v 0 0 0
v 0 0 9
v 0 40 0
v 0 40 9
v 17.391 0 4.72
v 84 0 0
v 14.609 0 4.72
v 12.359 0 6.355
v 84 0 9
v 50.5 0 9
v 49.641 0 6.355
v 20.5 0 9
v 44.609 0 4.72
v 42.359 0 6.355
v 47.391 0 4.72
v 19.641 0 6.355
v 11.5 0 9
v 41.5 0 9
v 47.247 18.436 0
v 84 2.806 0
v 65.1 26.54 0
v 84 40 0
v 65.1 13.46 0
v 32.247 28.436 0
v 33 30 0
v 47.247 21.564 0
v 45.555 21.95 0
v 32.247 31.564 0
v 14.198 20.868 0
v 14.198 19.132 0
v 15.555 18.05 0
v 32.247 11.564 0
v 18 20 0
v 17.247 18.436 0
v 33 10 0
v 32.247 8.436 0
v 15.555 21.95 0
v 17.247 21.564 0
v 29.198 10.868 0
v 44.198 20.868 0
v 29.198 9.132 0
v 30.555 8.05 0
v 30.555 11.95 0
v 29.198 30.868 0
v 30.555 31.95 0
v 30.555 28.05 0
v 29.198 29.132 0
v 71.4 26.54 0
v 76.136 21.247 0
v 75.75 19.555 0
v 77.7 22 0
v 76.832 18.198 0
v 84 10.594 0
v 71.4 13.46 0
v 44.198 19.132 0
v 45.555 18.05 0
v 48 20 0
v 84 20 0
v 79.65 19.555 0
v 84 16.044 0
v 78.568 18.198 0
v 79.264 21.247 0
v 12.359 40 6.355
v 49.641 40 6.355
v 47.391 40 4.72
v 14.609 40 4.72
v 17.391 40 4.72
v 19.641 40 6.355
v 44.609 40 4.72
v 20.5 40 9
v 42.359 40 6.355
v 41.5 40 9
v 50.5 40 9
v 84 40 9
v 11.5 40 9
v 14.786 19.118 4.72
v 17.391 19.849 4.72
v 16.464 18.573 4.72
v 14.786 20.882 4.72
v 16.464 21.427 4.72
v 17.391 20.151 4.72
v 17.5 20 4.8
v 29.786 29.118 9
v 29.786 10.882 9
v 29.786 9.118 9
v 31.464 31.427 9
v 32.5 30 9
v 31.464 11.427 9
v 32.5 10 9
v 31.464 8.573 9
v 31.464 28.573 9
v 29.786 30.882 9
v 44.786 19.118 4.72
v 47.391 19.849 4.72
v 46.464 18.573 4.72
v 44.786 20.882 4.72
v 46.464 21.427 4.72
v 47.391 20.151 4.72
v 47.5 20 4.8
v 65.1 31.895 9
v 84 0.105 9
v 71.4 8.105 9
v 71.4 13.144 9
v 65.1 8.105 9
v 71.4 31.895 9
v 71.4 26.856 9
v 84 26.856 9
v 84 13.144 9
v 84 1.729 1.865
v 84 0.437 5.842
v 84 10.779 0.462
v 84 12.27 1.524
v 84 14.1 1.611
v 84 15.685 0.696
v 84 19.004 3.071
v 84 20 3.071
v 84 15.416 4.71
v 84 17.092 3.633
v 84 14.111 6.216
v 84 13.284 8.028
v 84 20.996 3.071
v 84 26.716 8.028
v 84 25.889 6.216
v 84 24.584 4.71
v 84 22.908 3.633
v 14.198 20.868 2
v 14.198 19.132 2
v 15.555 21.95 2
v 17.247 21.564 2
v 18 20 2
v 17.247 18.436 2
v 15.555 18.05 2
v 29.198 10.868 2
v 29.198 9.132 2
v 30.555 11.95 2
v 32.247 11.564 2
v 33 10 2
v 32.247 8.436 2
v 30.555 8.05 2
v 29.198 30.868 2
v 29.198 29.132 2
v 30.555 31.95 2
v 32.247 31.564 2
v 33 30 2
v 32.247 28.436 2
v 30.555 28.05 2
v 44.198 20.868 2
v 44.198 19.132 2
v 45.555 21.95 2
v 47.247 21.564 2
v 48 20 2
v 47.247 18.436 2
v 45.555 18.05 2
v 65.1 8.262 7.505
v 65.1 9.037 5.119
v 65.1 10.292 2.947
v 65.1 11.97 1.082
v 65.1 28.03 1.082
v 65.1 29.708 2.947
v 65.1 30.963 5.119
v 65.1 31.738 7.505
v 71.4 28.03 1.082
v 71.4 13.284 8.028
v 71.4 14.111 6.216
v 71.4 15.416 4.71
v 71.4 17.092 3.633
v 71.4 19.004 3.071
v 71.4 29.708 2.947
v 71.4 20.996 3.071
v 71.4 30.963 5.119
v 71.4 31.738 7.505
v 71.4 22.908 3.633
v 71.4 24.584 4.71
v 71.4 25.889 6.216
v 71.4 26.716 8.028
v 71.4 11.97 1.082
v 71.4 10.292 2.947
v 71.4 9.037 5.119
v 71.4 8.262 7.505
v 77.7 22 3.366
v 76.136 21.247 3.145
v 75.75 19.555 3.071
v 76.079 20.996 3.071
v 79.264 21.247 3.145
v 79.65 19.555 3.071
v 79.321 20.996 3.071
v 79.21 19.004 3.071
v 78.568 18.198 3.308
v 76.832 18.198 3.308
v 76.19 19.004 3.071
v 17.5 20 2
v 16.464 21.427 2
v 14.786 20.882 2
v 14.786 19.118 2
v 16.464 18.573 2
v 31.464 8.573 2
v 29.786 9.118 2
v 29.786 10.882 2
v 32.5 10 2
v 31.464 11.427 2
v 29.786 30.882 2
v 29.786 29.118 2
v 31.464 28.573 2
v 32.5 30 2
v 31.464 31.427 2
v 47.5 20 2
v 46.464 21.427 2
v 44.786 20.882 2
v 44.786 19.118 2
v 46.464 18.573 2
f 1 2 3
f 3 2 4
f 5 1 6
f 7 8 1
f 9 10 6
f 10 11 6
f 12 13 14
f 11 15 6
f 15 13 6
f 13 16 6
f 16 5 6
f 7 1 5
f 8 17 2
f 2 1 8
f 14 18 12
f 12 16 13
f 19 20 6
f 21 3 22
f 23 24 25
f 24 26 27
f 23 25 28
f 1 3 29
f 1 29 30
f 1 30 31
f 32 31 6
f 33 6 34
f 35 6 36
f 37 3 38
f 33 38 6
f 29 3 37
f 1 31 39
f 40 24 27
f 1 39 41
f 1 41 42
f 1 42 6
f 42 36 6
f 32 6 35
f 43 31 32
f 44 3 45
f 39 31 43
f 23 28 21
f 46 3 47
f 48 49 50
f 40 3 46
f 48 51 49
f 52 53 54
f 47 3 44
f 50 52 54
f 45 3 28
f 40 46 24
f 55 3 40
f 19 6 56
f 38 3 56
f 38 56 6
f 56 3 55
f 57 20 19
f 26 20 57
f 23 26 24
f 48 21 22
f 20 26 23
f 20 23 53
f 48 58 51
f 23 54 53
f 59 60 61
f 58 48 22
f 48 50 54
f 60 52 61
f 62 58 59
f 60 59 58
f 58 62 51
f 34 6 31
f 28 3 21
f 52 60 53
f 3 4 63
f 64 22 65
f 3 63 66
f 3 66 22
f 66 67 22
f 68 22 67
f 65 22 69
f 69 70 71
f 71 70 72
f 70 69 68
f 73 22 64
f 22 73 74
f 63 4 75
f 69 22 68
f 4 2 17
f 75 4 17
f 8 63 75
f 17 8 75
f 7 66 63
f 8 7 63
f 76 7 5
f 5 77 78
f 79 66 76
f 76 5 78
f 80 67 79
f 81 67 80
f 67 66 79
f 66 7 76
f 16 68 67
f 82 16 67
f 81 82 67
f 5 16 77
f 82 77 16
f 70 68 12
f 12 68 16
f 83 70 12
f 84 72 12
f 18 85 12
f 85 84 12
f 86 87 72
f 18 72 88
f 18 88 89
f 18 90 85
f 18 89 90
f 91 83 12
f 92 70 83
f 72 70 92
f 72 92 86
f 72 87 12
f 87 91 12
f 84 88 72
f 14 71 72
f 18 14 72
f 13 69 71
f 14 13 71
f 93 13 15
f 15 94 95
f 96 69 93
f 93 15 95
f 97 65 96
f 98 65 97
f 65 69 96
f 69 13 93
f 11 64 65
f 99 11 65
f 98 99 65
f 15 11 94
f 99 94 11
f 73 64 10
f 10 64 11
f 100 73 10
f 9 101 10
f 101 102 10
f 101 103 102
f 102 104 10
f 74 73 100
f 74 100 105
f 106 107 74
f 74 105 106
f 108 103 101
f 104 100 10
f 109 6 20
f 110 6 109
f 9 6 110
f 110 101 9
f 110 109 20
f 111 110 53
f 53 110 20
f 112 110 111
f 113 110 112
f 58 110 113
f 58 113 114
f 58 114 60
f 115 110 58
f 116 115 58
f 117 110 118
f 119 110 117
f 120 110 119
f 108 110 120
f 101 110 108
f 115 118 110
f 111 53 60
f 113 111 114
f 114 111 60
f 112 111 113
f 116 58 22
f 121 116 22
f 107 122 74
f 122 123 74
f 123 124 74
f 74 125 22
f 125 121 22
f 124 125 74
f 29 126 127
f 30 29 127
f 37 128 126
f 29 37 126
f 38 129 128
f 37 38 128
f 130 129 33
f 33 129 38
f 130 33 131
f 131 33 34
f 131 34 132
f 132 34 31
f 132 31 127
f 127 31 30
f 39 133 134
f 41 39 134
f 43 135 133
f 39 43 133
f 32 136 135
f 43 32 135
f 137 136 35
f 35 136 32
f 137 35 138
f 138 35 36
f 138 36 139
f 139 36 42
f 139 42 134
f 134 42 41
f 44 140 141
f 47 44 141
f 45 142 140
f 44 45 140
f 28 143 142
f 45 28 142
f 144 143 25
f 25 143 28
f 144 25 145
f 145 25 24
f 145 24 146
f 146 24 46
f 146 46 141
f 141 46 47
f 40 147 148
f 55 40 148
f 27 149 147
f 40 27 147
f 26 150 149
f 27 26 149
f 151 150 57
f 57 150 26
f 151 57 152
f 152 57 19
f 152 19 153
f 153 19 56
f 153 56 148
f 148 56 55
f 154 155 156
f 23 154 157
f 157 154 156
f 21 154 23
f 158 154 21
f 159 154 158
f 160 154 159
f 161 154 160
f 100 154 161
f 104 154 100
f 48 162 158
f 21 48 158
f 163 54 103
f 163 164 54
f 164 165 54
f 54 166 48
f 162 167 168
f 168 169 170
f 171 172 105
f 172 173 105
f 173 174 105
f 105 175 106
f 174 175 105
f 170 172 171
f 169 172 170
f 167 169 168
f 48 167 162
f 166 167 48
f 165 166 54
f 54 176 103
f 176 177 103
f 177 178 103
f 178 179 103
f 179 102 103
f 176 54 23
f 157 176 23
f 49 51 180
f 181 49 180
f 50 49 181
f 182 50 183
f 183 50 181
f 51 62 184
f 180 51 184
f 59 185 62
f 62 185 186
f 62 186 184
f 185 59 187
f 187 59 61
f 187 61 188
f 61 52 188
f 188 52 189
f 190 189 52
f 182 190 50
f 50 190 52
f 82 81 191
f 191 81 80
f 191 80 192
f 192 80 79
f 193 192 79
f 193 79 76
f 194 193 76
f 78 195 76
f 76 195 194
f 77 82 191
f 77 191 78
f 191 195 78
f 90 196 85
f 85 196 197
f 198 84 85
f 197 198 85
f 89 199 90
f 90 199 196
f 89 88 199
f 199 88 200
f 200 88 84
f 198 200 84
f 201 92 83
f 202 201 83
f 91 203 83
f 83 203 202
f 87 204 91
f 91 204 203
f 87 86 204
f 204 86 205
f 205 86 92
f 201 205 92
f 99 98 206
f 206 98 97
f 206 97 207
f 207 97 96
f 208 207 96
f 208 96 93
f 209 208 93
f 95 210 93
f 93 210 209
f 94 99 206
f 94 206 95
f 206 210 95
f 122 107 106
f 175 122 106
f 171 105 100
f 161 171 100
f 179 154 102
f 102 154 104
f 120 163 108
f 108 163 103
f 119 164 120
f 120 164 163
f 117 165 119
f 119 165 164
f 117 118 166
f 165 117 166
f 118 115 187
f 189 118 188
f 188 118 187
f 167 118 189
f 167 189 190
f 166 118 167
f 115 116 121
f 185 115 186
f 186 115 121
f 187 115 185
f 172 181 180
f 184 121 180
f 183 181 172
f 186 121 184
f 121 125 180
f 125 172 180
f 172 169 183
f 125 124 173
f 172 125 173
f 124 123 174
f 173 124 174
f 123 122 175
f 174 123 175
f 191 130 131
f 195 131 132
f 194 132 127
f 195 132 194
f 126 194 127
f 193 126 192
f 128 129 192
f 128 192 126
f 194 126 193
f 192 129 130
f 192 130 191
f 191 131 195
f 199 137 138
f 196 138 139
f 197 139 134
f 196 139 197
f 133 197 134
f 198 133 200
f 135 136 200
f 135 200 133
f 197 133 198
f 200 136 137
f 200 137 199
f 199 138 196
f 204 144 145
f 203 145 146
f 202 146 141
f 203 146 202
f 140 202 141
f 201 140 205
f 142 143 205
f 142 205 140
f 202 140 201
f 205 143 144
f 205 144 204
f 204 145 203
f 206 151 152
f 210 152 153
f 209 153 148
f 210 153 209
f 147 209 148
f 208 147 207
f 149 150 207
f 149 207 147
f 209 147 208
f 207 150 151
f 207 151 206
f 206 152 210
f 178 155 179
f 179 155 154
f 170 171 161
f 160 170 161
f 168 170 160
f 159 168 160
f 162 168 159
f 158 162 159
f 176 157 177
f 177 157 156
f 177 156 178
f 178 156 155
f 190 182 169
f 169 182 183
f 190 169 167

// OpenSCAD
// file: stanley.scad
use <hardware.scad>

module stanley(solid_screw = false) {
	motor_r = 20;
	stem_r = 7;
	retainer_r = 12;
	motor_disk_height = 6.3;
	union() {
		difference() {
			cylinder(r=motor_r, h=motor_disk_height);
			for (i = [0:2]) {
				rotate(v=[0,0,1], a = i * 120)
					translate(v=[2 * motor_r / 3, 0, 0])
						m3();
			}
		}
	
		difference() {
			translate(v=[0, 0, -motor_disk_height * 2])
				cylinder(r=stem_r, h=motor_disk_height * 2);
			if (!solid_screw)
				translate(v=[0, 10, -motor_disk_height])
					rotate (v=[1, 0, 0], 90) m3(40);
		}

		translate(v=[0, 0, -motor_disk_height * 3])
			cylinder(r=retainer_r, h=motor_disk_height);

		if (solid_screw) {
			translate(v=[0, 20, -motor_disk_height])
				rotate (v=[1, 0, 0], 90) m3(40);
		}
	}
}

stanley();
// file: hardware.scad
axle_r = 4.5;
axle_separation = 30;

module axle(h) {
	rotate(v=[-1,0,0], a=90) cylinder(r=axle_r, h=h, $fn=10);
}

module axlepair(h=100) {
	union() {
		axle(h);
		translate(v=[axle_separation, 0, 0]) axle(h);
	}
}

module m2(h=16) {
	union() {
		cylinder(r=2, h=2);
		cylinder(r=1.5, h=h);
	}
}

module m3(h=16) {
	union() {
		cylinder(r=3.25, h=3);
		cylinder(r=2, h=h);
	}
}

module m5(h=16) {
	union() {
		cylinder(r=4.5, h=5);
		cylinder(r=3, h=h);
	}
}
// main file
include <hardware.scad>
use <stanley.scad>

module fred() {
	h = 2 * axle_r;
	extension = 4; 
	difference() {
		cube([80 + extension, 40, h]);

		translate(v=[20 - extension, -10, h]) axlepair();

		translate(v=[80 + extension, 20, 10]) {
			rotate(v=[1,0,0], 90) 
				rotate(v=[0,1,0], 90) stanley(solid_screw=true);
		}

		for (v = [[20 - extension + axle_separation/2, 10, 0],
				[20 - extension + axle_separation/2, 30, 0]])
			translate(v=v) m2();

		for (v = [[20 - extension,20,0],
				[20 - extension + axle_separation,20,0]])
			translate(v=v) m2();
	}
}

fred();
